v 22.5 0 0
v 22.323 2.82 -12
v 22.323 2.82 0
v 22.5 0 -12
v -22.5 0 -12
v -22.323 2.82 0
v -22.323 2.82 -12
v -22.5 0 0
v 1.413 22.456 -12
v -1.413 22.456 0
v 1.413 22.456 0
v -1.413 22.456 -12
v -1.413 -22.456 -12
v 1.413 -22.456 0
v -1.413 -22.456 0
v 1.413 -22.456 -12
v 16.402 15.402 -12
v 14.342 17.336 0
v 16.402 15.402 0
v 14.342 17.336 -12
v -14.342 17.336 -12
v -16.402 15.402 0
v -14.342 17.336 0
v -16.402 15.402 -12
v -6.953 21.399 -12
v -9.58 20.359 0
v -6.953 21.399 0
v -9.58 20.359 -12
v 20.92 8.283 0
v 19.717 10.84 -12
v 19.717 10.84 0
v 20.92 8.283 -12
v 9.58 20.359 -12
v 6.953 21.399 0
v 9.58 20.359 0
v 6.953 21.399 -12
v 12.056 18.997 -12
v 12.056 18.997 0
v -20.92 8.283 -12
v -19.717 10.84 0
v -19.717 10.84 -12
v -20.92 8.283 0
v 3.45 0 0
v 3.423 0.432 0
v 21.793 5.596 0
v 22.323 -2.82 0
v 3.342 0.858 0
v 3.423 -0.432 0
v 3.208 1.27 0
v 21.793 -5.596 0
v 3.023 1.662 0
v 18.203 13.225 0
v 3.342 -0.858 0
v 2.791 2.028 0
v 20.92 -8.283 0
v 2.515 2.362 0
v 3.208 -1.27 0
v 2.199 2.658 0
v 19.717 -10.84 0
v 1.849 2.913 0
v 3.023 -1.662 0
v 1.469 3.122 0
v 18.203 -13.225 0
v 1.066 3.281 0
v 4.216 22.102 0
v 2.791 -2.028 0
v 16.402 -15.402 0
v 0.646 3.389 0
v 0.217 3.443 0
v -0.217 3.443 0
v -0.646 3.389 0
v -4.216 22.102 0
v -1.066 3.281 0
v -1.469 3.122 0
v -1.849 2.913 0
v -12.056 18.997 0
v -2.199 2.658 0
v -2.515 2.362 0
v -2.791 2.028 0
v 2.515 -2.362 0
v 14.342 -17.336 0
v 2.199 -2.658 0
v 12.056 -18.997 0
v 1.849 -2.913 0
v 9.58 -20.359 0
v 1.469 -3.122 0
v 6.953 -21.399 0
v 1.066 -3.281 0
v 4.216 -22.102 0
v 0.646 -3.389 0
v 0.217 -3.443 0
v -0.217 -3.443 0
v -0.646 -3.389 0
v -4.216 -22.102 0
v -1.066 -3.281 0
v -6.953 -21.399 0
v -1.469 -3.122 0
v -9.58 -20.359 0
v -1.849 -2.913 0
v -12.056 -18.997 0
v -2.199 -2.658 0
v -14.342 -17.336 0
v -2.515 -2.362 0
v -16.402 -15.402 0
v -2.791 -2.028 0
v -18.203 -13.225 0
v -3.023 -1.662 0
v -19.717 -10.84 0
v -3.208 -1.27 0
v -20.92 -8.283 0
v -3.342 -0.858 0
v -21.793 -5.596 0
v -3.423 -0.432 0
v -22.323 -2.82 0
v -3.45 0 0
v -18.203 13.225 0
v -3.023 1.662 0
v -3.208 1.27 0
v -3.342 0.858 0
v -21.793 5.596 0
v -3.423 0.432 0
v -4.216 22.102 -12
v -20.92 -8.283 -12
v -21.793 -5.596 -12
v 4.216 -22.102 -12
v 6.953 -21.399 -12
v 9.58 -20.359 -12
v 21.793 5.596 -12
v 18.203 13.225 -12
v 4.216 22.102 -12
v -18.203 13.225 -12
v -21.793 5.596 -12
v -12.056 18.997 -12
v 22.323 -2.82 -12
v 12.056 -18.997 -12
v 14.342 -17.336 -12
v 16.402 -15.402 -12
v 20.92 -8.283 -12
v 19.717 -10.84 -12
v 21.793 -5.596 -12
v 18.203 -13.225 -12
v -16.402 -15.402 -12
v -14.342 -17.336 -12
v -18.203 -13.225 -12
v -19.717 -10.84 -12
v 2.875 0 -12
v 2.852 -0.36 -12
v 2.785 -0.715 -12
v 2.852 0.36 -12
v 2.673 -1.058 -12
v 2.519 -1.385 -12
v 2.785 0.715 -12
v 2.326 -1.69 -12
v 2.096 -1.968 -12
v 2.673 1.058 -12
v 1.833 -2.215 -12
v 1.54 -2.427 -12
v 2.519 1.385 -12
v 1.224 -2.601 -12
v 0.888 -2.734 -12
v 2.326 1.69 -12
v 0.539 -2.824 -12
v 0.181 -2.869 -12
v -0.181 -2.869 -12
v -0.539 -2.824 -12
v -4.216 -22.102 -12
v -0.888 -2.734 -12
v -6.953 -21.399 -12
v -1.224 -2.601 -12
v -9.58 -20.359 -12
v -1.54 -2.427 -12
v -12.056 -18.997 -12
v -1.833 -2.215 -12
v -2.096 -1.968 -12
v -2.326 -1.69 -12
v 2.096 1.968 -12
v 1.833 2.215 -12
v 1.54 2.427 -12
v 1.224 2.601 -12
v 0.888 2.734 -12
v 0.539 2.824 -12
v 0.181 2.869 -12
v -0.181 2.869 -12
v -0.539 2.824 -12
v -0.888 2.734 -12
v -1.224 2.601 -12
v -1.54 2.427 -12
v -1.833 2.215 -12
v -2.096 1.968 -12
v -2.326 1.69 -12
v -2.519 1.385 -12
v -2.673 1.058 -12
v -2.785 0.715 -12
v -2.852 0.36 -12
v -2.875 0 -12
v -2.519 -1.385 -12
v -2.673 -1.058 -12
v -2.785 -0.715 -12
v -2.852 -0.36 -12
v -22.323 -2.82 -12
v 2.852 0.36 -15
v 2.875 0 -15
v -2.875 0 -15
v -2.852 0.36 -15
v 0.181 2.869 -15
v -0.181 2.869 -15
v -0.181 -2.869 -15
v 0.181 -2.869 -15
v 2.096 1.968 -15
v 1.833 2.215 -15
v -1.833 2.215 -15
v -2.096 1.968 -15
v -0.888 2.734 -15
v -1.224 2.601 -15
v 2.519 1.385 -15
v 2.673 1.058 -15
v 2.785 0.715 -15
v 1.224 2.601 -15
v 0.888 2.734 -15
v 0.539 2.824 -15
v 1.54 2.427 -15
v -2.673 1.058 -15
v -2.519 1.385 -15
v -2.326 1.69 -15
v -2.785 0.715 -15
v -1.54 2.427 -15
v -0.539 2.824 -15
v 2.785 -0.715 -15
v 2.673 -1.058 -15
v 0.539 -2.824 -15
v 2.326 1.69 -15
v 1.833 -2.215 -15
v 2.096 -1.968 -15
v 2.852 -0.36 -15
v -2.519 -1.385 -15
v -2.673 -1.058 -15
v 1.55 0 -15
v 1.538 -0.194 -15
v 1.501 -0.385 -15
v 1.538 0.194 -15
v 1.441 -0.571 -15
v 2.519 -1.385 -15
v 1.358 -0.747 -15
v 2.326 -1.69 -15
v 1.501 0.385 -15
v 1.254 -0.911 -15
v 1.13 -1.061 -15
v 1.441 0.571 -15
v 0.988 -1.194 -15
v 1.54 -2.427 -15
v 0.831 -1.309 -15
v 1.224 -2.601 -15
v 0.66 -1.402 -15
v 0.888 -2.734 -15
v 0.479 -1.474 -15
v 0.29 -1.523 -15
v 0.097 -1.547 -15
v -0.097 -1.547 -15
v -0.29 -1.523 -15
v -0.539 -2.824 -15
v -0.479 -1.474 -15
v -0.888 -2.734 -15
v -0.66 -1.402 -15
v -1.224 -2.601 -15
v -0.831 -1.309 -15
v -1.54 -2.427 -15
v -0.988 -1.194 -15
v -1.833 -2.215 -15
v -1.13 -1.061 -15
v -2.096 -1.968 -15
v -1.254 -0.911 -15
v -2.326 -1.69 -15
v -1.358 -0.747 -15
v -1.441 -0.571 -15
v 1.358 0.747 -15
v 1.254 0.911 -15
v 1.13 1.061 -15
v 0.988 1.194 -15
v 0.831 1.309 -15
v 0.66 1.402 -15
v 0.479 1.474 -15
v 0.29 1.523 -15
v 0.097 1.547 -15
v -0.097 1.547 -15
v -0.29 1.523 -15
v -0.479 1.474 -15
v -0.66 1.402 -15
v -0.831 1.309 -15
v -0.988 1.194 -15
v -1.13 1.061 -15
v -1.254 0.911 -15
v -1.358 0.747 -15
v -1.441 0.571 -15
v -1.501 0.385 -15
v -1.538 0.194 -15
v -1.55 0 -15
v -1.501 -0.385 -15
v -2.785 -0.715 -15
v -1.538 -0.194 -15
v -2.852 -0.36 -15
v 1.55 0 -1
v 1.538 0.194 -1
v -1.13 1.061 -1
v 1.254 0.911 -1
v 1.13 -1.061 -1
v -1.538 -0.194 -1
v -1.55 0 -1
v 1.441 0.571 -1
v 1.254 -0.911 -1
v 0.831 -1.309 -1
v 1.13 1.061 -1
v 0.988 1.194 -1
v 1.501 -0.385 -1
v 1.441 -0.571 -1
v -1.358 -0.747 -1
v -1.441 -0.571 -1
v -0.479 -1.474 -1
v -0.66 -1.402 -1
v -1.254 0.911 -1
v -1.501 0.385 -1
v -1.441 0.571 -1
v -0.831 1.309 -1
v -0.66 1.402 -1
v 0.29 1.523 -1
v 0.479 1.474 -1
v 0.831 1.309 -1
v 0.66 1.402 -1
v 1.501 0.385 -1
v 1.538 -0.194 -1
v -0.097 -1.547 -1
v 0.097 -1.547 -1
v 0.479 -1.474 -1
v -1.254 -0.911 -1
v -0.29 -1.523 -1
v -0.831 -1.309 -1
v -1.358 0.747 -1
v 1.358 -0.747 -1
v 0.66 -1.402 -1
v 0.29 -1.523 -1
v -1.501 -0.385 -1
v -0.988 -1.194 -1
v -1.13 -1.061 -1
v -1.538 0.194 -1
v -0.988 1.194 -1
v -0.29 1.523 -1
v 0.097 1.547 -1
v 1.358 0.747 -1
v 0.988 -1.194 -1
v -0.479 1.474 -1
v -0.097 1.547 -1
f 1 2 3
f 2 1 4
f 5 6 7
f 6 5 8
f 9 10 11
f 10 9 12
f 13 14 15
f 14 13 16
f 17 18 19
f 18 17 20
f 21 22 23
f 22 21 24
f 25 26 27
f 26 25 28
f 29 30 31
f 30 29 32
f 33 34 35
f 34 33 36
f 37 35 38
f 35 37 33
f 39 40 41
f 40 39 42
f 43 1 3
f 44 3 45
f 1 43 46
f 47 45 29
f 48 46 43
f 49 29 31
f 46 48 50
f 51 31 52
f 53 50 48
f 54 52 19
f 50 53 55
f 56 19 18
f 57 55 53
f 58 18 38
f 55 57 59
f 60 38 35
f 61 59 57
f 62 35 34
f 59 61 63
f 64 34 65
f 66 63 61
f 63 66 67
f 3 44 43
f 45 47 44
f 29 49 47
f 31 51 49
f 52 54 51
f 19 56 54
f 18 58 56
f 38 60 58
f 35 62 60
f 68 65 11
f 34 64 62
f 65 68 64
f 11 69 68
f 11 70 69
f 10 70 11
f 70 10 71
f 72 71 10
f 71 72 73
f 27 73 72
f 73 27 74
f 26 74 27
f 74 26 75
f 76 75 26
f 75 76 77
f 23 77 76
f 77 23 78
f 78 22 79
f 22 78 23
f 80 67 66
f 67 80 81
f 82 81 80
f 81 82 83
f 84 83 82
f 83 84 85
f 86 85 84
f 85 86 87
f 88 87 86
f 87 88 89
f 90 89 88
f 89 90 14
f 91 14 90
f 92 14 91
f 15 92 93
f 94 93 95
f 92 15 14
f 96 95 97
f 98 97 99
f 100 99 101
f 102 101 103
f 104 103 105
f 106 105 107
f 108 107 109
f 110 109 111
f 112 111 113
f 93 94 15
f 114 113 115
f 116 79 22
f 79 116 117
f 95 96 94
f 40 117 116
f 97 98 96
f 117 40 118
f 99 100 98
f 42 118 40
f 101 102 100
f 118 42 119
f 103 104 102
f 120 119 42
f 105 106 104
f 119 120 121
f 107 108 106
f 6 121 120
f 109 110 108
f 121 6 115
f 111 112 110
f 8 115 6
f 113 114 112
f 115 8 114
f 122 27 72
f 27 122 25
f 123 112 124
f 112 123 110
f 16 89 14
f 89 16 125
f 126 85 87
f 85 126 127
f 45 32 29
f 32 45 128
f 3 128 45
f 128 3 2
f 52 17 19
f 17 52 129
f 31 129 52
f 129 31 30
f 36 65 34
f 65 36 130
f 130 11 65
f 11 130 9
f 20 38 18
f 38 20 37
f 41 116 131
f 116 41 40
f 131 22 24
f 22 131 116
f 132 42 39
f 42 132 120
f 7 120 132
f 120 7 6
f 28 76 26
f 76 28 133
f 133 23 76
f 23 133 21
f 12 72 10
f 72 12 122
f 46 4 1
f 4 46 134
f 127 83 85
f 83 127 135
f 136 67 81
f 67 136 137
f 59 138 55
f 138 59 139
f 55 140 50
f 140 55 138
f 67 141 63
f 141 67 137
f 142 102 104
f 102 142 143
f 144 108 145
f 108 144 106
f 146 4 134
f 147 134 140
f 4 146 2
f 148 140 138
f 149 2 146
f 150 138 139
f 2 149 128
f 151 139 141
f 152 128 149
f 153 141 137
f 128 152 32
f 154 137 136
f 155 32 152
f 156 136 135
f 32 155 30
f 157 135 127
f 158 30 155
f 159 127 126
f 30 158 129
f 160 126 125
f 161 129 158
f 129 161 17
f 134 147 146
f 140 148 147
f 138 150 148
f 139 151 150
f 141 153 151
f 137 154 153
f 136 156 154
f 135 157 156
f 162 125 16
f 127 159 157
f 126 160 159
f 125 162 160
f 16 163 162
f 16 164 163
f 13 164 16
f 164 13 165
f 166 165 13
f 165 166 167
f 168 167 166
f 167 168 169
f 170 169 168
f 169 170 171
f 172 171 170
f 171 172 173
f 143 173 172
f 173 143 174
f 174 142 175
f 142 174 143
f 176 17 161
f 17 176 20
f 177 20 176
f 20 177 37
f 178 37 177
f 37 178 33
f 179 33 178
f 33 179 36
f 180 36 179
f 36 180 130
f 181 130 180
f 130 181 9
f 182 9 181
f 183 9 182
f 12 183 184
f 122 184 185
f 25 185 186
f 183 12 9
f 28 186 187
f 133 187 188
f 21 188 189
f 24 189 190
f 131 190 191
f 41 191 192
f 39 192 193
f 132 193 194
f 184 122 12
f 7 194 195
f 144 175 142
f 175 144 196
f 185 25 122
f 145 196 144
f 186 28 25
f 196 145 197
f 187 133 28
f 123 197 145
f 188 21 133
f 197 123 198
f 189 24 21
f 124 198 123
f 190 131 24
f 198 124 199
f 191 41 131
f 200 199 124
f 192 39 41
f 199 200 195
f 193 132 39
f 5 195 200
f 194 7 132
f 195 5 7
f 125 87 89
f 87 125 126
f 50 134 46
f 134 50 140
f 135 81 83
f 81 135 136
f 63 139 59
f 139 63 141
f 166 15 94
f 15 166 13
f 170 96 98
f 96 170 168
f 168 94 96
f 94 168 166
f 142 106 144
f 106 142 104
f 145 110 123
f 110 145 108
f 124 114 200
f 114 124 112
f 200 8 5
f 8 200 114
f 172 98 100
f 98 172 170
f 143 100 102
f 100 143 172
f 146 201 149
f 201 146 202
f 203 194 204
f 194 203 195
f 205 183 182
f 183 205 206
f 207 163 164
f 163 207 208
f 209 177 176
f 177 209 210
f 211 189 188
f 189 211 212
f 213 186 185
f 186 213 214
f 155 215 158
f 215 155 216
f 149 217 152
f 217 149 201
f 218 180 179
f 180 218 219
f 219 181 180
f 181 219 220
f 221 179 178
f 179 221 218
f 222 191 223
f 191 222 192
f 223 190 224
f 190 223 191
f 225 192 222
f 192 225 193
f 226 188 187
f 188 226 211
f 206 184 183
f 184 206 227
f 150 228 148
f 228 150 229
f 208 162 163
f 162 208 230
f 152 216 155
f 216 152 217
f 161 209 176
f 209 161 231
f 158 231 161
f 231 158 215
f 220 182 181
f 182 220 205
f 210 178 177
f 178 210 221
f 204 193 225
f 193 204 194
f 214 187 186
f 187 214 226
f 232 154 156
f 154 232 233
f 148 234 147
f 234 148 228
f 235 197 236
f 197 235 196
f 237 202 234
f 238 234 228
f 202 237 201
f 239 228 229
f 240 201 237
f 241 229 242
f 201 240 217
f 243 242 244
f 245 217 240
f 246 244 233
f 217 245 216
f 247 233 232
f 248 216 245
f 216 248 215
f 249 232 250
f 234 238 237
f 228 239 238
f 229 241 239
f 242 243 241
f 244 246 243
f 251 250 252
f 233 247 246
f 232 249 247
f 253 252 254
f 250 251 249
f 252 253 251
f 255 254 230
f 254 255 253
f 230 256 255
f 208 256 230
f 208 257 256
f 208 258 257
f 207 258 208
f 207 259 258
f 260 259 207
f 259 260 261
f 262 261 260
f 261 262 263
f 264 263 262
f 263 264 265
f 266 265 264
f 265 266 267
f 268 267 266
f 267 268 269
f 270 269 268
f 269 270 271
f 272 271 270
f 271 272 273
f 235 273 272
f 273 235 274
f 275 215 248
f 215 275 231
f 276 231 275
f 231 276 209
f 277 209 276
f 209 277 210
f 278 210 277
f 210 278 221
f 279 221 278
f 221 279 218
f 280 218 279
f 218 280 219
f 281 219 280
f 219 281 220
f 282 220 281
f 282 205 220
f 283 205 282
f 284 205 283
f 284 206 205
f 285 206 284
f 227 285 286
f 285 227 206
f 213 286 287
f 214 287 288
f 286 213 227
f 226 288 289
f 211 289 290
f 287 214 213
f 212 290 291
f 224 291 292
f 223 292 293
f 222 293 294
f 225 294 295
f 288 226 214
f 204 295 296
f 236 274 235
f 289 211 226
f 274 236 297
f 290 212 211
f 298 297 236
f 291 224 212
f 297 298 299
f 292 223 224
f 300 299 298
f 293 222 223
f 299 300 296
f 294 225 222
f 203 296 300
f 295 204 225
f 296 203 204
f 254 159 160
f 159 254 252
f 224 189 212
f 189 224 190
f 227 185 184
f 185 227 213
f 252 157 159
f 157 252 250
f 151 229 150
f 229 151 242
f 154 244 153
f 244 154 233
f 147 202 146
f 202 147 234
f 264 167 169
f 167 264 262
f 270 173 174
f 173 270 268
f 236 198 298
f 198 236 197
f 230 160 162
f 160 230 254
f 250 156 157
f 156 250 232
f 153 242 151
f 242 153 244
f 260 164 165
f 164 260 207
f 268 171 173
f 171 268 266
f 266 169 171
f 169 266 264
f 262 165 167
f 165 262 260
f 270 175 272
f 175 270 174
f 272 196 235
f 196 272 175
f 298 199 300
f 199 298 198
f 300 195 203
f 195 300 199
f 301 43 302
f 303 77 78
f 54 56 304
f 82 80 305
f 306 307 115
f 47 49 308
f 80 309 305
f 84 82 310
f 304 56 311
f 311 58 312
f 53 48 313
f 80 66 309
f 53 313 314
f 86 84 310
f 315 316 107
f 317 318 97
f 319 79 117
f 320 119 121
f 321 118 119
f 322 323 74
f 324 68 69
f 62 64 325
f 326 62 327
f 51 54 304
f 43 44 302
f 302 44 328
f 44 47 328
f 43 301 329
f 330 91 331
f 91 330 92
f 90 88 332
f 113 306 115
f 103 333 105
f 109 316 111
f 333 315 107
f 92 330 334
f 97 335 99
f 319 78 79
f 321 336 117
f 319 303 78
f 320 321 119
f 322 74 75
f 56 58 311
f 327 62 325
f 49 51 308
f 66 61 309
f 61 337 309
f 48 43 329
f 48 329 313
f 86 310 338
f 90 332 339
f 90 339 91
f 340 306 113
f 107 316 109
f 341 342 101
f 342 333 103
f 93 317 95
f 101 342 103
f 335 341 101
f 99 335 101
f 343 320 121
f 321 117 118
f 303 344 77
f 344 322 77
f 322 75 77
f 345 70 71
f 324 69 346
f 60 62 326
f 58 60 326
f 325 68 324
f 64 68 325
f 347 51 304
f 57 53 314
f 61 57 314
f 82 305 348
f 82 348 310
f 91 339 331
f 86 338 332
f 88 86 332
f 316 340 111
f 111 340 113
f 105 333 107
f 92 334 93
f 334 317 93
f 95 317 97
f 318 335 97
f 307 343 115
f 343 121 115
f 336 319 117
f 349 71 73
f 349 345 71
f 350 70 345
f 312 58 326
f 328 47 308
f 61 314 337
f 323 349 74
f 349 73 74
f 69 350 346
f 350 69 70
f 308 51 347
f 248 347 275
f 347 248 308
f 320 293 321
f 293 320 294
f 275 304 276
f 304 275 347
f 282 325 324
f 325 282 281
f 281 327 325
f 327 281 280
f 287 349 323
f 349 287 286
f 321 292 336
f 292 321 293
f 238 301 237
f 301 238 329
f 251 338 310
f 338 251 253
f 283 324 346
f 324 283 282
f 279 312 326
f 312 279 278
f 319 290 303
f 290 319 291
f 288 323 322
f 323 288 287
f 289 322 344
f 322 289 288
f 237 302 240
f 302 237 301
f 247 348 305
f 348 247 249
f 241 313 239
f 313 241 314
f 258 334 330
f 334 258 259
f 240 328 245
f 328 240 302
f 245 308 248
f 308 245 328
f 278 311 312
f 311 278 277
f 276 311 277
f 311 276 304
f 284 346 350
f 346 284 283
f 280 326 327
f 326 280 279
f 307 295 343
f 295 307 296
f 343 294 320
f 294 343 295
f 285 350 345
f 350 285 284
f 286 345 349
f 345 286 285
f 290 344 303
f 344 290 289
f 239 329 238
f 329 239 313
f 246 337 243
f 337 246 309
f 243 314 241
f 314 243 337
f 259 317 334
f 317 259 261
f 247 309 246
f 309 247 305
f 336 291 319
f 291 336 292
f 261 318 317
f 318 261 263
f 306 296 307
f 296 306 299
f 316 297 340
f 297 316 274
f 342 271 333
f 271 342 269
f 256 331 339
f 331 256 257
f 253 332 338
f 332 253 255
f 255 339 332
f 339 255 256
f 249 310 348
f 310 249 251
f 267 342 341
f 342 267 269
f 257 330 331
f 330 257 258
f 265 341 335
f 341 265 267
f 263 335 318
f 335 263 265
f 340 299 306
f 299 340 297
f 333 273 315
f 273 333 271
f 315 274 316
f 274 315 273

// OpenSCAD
$fn = 50;


difference() {
	union() {
		translate(v = [0, 0, -12.0000000000]) {
			cylinder(h = 12, r = 22.5000000000);
		}
		translate(v = [0, 0, -15.0000000000]) {
			cylinder(h = 15, r = 2.8750000000);
		}
	}
	union() {
		translate(v = [0, 0, 0]) {
			rotate(a = [0, 0, 0]) {
				difference() {
					union() {
						translate(v = [0, 0, -15.0000000000]) {
							cylinder(h = 15, r = 1.2500000000);
						}
						translate(v = [0, 0, -1.0000000000]) {
							cylinder(h = 1.0000000000, r1 = 1.5500000000, r2 = 3.4500000000);
						}
						translate(v = [0, 0, -15.0000000000]) {
							cylinder(h = 15, r = 1.5500000000);
						}
						translate(v = [0, 0, -15.0000000000]) {
							cylinder(h = 15, r = 1.2500000000);
						}
					}
					union();
				}
			}
		}
	}
}
